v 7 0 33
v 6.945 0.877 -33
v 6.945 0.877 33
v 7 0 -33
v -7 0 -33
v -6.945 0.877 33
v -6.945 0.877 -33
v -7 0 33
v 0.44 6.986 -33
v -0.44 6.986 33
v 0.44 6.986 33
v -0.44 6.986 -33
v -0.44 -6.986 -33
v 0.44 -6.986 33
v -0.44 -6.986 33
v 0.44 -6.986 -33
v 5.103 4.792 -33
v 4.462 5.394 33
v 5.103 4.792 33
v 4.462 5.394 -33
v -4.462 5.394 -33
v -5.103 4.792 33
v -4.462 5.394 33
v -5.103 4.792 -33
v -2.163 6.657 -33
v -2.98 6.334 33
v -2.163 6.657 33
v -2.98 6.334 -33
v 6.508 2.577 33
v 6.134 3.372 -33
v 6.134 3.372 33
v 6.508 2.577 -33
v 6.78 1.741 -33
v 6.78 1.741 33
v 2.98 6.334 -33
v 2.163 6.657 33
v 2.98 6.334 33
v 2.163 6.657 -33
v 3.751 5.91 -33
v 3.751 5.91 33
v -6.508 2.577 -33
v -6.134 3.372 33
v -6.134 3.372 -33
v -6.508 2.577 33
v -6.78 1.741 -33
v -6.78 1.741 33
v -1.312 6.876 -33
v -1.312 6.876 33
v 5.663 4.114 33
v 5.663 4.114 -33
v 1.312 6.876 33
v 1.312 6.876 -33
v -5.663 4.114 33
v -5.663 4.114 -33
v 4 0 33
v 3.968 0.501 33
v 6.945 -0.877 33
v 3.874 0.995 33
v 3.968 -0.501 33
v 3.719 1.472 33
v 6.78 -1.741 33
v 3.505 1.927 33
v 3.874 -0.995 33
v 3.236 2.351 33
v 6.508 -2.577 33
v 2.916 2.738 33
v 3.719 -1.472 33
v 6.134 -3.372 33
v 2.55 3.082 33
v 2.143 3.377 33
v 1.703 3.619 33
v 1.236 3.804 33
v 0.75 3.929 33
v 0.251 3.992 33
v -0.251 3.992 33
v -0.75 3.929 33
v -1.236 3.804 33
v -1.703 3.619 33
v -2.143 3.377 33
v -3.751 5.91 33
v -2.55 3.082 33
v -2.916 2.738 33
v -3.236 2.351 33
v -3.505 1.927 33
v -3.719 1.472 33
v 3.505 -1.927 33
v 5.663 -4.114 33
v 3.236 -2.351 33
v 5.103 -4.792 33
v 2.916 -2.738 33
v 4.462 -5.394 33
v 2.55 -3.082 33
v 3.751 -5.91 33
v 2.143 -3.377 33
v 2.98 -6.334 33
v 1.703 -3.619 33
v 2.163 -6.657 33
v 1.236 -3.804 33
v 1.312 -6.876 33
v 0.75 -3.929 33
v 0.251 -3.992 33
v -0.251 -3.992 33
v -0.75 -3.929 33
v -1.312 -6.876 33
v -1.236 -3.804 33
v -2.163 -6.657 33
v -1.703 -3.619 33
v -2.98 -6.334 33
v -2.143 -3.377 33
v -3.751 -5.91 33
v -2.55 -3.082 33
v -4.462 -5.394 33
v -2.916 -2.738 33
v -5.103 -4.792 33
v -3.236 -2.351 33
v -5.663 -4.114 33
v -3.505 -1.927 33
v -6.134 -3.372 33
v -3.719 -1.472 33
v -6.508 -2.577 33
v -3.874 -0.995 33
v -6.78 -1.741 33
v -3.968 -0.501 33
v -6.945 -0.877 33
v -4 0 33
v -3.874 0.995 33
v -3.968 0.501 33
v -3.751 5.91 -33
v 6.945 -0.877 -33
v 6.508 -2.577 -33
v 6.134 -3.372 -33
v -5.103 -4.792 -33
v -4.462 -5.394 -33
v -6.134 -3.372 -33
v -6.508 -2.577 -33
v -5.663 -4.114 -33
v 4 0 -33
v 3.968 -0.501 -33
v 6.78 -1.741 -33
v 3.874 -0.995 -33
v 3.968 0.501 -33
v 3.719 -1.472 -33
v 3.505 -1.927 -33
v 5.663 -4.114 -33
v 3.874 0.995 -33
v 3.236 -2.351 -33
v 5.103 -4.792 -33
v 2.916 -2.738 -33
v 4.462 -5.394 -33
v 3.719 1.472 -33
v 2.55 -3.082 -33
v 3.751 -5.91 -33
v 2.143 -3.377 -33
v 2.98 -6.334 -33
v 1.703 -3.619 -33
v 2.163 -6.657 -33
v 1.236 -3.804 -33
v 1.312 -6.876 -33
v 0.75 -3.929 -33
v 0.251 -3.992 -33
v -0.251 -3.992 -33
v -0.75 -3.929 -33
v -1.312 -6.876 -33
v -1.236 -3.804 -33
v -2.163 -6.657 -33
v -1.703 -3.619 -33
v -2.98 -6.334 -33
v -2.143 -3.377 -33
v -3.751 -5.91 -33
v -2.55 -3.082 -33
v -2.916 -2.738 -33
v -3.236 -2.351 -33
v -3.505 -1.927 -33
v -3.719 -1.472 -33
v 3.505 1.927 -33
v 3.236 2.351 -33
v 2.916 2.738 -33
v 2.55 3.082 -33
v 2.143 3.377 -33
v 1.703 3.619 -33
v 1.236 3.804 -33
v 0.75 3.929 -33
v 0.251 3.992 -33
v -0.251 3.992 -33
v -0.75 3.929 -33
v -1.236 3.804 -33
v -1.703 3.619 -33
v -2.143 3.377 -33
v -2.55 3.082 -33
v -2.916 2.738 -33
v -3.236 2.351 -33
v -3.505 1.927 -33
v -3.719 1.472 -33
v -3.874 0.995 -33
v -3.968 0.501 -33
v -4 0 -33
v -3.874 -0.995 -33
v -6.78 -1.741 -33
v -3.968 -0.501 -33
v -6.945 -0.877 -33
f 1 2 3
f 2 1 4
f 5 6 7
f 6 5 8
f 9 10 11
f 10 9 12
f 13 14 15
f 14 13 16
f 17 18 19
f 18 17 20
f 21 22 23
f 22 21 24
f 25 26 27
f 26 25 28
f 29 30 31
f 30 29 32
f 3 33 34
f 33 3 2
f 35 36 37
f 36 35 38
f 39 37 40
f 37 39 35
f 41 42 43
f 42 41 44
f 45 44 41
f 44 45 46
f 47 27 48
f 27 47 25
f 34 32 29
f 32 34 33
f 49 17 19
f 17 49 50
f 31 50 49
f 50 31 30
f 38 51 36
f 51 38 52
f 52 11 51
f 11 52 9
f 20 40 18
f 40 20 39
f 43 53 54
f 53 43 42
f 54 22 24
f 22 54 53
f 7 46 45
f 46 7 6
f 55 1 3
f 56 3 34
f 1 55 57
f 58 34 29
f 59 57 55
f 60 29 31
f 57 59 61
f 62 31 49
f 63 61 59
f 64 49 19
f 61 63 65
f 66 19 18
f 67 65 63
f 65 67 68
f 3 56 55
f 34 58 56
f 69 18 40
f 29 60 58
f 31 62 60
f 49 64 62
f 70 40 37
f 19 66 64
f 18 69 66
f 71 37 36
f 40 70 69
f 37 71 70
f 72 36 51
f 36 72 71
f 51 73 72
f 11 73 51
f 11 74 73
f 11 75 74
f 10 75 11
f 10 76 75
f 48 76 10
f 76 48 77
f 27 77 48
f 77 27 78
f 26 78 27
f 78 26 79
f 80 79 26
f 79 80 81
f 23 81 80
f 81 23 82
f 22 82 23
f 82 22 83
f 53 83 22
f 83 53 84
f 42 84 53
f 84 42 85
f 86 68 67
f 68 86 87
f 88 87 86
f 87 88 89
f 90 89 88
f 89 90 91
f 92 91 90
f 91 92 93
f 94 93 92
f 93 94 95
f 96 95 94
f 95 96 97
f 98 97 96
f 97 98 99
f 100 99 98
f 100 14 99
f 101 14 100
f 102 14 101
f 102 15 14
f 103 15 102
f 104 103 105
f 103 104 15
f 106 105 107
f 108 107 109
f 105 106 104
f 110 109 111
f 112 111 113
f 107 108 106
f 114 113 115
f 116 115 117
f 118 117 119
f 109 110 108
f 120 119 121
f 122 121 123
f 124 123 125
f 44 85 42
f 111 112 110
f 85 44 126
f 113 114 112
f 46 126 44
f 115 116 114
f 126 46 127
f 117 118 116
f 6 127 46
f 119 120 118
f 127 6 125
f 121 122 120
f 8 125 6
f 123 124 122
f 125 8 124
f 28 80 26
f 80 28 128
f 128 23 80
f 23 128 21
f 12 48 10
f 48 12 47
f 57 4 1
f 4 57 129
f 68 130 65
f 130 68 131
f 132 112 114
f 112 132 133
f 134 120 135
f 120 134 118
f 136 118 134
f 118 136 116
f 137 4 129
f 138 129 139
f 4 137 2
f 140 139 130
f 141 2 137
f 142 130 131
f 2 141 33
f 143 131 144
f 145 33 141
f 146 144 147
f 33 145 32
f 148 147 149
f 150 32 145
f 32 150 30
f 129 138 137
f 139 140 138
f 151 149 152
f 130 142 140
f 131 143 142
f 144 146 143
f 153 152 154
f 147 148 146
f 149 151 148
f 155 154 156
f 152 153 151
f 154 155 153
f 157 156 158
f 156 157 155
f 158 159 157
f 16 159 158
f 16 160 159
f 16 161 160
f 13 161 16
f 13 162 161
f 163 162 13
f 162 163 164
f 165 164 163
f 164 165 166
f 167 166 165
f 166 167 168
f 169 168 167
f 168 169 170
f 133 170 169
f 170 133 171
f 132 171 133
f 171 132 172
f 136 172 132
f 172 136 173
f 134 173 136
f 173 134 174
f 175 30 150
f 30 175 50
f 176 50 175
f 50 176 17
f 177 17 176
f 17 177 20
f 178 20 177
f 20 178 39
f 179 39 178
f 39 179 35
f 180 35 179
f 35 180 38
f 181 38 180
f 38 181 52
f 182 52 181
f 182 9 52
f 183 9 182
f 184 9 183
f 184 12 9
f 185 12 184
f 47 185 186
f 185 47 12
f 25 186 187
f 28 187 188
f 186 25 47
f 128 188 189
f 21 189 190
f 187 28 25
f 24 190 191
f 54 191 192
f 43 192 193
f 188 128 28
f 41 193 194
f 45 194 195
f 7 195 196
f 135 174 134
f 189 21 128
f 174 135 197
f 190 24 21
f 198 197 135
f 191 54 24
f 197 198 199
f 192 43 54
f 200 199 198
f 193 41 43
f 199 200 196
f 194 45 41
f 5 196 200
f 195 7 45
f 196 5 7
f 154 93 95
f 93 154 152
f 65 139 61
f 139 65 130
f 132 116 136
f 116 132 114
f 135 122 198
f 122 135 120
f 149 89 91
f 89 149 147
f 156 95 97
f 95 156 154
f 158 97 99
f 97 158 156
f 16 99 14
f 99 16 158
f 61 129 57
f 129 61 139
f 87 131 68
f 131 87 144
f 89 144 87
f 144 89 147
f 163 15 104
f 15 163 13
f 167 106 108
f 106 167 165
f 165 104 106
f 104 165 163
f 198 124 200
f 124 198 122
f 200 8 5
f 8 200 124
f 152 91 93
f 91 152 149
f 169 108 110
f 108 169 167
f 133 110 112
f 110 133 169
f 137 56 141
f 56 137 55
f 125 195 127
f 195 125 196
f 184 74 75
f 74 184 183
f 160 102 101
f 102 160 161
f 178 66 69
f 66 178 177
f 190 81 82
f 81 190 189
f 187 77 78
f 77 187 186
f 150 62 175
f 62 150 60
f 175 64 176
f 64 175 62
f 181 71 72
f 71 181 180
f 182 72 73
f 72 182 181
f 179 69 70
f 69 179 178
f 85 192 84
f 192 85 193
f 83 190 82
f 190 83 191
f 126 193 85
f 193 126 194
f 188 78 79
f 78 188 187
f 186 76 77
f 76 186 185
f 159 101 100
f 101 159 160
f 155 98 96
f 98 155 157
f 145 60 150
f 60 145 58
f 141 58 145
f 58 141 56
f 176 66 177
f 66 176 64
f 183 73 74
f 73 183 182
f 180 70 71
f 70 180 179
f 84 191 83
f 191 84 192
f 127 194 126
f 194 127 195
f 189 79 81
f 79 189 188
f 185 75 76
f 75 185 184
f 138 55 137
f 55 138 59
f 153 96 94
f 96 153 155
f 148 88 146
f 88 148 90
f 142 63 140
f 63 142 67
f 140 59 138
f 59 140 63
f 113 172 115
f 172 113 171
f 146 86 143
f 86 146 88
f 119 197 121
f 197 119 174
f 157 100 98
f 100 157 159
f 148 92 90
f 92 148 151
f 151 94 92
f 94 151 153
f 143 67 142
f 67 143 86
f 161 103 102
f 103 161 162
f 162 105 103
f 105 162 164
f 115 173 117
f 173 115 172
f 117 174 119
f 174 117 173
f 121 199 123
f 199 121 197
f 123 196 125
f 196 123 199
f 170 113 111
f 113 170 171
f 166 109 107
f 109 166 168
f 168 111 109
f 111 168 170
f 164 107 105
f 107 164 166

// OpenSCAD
$fn = 50;


difference() {
	union() {
		translate(v = [0, 0, -33.0000000000]) {
			cylinder(h = 66, r = 7.0000000000);
		}
	}
	union() {
		translate(v = [0, 0, -100.0000000000]) {
			cylinder(h = 200, r = 4);
		}
	}
}
